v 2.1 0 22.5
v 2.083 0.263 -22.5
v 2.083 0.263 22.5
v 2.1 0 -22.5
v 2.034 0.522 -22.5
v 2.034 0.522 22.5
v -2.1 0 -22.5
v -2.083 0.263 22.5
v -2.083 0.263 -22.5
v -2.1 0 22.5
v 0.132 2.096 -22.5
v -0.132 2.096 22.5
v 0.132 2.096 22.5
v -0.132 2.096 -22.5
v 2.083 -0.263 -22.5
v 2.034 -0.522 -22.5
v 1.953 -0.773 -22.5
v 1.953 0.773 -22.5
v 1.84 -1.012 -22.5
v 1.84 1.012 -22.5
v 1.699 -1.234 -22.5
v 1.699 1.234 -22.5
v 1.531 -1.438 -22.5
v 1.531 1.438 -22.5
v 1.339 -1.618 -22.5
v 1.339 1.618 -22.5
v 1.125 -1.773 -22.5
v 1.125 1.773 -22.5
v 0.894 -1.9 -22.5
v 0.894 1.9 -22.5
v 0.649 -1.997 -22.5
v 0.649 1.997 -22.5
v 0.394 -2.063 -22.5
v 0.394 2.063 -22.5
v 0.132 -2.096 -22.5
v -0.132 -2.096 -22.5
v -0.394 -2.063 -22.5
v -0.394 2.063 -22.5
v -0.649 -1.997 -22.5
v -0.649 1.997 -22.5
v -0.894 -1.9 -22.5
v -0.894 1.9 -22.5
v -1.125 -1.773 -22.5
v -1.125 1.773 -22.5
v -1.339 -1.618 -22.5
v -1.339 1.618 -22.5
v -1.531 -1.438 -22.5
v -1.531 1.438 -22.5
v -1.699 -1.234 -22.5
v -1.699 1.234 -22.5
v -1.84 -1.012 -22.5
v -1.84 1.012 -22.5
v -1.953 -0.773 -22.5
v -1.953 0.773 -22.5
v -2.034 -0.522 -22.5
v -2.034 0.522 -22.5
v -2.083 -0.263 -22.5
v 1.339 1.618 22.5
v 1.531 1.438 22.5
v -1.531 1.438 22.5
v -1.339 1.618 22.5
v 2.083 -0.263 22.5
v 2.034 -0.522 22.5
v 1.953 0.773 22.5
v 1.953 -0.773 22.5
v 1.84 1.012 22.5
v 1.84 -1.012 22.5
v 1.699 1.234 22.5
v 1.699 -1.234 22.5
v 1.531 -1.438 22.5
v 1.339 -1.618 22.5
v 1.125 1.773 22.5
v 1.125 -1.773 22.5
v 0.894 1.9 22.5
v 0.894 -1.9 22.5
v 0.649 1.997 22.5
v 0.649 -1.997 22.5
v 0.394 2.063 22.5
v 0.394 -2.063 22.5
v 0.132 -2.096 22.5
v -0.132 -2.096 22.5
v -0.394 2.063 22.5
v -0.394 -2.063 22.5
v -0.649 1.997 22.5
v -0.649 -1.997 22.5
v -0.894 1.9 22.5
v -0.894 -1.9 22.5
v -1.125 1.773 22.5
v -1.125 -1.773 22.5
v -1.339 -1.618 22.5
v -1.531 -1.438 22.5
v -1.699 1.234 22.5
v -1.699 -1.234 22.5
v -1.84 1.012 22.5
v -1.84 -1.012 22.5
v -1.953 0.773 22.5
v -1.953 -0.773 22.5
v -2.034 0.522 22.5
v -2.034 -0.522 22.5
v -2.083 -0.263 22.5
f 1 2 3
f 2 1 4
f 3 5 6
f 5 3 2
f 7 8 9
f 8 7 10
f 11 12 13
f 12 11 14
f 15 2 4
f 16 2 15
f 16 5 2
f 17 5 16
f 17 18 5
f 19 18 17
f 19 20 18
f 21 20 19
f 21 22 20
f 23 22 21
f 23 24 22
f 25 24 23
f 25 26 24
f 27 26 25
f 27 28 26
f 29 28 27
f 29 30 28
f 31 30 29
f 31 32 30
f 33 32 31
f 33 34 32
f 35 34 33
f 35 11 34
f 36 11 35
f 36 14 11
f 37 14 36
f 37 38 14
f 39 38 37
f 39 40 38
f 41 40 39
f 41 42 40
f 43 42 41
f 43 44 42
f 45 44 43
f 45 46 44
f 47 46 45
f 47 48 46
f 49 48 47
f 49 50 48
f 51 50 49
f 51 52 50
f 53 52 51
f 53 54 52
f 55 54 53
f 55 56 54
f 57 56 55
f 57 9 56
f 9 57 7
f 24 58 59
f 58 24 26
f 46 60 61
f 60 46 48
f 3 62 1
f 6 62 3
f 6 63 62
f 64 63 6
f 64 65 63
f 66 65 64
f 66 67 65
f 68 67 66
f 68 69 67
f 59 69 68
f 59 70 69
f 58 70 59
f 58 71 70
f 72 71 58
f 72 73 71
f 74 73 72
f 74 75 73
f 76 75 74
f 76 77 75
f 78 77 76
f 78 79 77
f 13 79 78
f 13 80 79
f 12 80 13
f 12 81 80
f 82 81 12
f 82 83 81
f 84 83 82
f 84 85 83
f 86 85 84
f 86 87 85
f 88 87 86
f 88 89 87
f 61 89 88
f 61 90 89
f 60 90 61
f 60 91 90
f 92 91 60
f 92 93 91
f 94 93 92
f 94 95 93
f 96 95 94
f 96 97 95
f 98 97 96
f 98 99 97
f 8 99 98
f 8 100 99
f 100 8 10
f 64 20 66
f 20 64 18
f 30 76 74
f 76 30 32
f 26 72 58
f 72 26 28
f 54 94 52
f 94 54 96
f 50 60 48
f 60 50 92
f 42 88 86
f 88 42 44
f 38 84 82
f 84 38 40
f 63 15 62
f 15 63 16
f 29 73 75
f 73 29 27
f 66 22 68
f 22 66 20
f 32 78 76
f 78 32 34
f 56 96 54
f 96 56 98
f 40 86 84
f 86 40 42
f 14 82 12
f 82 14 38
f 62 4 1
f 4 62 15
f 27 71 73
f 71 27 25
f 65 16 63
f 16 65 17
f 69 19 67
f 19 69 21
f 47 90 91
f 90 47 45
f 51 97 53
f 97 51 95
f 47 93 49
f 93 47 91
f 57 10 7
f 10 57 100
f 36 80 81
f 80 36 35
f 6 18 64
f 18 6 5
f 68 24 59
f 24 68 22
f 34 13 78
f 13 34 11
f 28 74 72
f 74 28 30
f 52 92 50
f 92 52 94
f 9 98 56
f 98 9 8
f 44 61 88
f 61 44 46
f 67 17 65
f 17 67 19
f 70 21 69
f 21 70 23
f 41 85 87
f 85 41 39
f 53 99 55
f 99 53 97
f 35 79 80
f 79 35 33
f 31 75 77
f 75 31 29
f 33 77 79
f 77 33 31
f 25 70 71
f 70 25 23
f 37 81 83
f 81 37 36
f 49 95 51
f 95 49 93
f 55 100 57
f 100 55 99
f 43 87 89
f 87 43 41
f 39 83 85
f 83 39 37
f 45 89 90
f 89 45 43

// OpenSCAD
$fn = 50;


difference() {
	union() {
		translate(v = [0, 0, -22.5000000000]) {
			cylinder(h = 45, r = 2.1000000000);
		}
	}
	union() {
		translate(v = [0, 0, -100.0000000000]) {
			cylinder(h = 200, r = 0);
		}
	}
}
